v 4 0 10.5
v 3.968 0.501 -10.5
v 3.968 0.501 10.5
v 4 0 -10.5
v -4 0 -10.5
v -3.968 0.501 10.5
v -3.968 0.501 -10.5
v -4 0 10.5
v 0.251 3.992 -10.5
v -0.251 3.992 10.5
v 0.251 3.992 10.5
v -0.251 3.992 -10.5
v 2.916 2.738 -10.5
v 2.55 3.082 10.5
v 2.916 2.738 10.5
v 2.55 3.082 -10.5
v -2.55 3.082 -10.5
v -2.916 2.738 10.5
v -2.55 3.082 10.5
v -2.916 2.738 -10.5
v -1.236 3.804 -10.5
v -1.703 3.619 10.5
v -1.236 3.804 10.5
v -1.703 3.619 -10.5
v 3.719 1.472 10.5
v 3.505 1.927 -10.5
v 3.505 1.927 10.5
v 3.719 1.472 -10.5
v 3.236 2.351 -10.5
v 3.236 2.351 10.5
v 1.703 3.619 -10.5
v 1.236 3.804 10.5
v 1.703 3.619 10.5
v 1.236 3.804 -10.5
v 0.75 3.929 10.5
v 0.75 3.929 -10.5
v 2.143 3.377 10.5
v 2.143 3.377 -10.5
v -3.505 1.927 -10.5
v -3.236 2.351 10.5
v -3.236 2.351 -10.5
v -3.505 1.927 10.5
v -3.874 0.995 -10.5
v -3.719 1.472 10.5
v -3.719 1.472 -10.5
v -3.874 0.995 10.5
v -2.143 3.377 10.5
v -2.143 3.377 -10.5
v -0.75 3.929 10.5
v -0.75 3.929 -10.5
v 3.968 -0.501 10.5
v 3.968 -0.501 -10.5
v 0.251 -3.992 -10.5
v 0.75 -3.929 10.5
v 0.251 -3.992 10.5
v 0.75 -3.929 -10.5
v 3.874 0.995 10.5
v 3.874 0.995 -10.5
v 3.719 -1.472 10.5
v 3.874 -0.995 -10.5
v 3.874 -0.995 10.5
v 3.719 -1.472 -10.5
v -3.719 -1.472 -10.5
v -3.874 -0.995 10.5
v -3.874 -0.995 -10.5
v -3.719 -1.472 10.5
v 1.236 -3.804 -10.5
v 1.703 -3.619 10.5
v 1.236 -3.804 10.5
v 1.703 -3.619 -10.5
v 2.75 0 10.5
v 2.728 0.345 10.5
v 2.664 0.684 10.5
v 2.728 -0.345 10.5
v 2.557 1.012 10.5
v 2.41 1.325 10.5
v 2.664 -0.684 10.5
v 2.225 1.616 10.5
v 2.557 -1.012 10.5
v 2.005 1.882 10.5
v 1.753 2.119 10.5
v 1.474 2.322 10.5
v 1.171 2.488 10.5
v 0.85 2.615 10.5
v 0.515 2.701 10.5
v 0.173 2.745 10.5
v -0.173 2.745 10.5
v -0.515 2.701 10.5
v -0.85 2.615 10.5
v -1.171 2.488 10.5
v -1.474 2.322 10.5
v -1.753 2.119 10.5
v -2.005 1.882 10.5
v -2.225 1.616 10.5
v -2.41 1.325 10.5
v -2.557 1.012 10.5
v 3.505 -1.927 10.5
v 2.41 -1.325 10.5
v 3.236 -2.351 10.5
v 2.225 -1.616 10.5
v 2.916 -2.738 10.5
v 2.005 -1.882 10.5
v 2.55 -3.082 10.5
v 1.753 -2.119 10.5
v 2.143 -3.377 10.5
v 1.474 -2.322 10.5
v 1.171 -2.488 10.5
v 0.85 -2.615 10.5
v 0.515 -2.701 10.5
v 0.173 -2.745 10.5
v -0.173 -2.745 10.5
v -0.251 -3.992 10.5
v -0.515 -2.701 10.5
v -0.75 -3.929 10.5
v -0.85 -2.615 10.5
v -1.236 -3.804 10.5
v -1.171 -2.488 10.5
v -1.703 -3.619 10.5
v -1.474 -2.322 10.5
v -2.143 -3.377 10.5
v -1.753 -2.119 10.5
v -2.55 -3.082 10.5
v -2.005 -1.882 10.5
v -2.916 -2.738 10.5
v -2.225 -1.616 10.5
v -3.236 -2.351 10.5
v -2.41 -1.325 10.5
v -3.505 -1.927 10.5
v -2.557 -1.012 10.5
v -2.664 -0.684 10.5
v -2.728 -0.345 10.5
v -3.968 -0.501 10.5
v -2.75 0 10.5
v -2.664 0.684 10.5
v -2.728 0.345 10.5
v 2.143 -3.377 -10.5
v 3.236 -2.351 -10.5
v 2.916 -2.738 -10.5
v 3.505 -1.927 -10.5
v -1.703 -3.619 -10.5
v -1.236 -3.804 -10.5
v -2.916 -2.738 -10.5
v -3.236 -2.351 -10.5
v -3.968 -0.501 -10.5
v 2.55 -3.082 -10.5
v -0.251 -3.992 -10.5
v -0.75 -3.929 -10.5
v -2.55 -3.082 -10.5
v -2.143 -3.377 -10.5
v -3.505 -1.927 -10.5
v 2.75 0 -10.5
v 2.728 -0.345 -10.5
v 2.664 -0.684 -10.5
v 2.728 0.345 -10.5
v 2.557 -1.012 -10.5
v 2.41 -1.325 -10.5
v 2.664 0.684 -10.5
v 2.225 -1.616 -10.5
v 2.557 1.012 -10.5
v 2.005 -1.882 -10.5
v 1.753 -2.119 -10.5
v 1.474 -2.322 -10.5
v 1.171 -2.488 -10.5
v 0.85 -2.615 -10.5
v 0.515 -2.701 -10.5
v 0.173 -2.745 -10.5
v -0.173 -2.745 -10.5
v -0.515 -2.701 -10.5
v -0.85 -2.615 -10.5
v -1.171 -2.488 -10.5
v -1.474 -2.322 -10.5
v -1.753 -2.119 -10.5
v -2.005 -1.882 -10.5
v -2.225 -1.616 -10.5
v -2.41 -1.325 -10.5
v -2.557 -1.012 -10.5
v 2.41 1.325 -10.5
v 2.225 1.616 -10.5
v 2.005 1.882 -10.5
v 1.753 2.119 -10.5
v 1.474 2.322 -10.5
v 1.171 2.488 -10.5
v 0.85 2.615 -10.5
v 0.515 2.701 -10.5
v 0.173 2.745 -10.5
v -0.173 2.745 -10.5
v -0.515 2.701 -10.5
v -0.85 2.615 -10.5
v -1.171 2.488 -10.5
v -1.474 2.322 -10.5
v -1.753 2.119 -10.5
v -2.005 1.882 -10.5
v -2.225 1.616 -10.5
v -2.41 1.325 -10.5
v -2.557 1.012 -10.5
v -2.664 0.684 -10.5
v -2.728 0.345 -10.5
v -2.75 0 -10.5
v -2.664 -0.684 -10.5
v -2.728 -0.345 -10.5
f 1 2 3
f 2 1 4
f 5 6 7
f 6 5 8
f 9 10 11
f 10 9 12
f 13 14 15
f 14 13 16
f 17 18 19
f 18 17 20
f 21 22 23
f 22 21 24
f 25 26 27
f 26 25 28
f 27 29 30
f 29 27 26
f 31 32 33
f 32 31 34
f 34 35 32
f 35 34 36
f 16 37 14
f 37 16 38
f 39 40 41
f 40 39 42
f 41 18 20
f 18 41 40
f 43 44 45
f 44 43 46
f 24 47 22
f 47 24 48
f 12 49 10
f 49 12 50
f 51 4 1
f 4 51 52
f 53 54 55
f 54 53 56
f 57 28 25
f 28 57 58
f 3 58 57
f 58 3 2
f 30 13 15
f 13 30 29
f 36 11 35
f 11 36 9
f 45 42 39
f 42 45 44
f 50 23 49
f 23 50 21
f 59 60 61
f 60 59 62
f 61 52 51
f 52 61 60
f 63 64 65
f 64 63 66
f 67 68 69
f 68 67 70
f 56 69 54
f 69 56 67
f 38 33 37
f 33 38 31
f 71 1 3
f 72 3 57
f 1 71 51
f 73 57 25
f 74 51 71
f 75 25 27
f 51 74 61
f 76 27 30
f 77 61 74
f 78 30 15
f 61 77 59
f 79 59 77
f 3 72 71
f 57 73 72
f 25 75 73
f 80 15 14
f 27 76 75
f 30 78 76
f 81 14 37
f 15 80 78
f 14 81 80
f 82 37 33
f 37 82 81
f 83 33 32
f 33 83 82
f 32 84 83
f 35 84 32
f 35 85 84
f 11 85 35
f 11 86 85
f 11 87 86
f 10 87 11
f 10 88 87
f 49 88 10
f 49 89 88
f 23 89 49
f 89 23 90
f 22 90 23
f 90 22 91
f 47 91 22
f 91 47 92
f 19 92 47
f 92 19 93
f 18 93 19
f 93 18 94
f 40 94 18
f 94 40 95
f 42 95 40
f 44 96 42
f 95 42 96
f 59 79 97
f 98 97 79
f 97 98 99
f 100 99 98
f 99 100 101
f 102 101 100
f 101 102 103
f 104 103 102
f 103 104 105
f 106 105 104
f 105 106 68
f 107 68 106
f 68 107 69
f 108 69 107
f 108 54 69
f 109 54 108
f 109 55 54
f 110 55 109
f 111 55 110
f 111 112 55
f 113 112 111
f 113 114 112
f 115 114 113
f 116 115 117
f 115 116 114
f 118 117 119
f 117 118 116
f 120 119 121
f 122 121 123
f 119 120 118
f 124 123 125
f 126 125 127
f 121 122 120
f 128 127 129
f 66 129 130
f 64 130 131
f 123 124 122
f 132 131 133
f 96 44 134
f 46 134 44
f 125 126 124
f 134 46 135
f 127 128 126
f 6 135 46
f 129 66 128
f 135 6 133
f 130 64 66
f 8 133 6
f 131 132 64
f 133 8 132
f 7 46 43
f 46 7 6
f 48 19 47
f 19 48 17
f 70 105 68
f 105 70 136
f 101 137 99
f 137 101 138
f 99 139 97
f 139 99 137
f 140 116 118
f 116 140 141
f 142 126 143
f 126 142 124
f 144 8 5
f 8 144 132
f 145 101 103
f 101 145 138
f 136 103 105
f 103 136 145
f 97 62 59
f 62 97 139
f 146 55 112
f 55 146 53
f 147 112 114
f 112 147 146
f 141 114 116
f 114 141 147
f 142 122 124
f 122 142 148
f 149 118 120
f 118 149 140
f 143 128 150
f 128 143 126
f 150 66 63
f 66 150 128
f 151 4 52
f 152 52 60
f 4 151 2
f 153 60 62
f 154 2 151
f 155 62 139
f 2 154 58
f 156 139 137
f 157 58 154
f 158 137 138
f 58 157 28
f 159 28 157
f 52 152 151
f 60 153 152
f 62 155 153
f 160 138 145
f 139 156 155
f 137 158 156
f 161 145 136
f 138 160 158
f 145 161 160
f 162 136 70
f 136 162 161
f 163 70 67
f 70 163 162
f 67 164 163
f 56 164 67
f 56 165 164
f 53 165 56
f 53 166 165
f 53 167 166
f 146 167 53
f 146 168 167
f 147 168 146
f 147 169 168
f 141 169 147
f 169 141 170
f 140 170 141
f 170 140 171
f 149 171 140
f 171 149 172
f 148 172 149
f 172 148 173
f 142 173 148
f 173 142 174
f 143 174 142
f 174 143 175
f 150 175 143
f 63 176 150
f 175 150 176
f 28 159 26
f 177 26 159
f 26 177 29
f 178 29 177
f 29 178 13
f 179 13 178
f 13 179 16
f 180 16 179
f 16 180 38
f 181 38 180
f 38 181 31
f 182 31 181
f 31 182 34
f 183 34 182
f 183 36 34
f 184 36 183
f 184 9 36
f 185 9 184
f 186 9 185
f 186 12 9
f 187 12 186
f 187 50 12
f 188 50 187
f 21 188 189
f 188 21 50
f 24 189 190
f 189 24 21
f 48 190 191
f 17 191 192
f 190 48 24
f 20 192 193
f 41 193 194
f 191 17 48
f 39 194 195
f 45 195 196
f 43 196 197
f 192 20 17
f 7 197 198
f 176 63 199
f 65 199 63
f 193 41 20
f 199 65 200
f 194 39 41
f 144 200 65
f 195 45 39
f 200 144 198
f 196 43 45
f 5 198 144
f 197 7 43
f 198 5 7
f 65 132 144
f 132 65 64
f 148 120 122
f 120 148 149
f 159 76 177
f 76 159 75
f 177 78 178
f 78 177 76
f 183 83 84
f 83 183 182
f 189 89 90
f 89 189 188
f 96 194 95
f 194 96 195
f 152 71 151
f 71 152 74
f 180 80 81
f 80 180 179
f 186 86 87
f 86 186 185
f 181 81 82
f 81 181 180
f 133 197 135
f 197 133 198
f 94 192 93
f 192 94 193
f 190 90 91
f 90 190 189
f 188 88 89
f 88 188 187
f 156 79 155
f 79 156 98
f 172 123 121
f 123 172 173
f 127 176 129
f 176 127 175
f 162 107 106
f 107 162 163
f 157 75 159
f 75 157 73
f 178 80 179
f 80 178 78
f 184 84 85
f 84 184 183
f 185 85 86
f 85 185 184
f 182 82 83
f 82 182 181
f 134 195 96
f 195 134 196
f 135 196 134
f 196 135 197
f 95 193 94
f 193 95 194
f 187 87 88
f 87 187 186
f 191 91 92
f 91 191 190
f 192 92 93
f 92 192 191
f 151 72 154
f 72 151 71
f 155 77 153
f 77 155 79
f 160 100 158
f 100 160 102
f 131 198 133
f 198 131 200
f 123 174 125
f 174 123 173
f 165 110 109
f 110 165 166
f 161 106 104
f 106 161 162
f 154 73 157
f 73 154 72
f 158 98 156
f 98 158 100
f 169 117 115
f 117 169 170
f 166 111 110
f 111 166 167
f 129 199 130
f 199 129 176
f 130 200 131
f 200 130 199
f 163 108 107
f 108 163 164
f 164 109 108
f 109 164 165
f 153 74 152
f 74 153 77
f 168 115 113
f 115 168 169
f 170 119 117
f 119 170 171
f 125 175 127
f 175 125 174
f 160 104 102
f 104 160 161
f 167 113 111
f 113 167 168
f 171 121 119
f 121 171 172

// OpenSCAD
$fn = 50;


difference() {
	union() {
		translate(v = [0, 0, -10.5000000000]) {
			cylinder(h = 21, r = 4.0000000000);
		}
	}
	union() {
		translate(v = [0, 0, -100.0000000000]) {
			cylinder(h = 200, r = 2.7500000000);
		}
	}
}
